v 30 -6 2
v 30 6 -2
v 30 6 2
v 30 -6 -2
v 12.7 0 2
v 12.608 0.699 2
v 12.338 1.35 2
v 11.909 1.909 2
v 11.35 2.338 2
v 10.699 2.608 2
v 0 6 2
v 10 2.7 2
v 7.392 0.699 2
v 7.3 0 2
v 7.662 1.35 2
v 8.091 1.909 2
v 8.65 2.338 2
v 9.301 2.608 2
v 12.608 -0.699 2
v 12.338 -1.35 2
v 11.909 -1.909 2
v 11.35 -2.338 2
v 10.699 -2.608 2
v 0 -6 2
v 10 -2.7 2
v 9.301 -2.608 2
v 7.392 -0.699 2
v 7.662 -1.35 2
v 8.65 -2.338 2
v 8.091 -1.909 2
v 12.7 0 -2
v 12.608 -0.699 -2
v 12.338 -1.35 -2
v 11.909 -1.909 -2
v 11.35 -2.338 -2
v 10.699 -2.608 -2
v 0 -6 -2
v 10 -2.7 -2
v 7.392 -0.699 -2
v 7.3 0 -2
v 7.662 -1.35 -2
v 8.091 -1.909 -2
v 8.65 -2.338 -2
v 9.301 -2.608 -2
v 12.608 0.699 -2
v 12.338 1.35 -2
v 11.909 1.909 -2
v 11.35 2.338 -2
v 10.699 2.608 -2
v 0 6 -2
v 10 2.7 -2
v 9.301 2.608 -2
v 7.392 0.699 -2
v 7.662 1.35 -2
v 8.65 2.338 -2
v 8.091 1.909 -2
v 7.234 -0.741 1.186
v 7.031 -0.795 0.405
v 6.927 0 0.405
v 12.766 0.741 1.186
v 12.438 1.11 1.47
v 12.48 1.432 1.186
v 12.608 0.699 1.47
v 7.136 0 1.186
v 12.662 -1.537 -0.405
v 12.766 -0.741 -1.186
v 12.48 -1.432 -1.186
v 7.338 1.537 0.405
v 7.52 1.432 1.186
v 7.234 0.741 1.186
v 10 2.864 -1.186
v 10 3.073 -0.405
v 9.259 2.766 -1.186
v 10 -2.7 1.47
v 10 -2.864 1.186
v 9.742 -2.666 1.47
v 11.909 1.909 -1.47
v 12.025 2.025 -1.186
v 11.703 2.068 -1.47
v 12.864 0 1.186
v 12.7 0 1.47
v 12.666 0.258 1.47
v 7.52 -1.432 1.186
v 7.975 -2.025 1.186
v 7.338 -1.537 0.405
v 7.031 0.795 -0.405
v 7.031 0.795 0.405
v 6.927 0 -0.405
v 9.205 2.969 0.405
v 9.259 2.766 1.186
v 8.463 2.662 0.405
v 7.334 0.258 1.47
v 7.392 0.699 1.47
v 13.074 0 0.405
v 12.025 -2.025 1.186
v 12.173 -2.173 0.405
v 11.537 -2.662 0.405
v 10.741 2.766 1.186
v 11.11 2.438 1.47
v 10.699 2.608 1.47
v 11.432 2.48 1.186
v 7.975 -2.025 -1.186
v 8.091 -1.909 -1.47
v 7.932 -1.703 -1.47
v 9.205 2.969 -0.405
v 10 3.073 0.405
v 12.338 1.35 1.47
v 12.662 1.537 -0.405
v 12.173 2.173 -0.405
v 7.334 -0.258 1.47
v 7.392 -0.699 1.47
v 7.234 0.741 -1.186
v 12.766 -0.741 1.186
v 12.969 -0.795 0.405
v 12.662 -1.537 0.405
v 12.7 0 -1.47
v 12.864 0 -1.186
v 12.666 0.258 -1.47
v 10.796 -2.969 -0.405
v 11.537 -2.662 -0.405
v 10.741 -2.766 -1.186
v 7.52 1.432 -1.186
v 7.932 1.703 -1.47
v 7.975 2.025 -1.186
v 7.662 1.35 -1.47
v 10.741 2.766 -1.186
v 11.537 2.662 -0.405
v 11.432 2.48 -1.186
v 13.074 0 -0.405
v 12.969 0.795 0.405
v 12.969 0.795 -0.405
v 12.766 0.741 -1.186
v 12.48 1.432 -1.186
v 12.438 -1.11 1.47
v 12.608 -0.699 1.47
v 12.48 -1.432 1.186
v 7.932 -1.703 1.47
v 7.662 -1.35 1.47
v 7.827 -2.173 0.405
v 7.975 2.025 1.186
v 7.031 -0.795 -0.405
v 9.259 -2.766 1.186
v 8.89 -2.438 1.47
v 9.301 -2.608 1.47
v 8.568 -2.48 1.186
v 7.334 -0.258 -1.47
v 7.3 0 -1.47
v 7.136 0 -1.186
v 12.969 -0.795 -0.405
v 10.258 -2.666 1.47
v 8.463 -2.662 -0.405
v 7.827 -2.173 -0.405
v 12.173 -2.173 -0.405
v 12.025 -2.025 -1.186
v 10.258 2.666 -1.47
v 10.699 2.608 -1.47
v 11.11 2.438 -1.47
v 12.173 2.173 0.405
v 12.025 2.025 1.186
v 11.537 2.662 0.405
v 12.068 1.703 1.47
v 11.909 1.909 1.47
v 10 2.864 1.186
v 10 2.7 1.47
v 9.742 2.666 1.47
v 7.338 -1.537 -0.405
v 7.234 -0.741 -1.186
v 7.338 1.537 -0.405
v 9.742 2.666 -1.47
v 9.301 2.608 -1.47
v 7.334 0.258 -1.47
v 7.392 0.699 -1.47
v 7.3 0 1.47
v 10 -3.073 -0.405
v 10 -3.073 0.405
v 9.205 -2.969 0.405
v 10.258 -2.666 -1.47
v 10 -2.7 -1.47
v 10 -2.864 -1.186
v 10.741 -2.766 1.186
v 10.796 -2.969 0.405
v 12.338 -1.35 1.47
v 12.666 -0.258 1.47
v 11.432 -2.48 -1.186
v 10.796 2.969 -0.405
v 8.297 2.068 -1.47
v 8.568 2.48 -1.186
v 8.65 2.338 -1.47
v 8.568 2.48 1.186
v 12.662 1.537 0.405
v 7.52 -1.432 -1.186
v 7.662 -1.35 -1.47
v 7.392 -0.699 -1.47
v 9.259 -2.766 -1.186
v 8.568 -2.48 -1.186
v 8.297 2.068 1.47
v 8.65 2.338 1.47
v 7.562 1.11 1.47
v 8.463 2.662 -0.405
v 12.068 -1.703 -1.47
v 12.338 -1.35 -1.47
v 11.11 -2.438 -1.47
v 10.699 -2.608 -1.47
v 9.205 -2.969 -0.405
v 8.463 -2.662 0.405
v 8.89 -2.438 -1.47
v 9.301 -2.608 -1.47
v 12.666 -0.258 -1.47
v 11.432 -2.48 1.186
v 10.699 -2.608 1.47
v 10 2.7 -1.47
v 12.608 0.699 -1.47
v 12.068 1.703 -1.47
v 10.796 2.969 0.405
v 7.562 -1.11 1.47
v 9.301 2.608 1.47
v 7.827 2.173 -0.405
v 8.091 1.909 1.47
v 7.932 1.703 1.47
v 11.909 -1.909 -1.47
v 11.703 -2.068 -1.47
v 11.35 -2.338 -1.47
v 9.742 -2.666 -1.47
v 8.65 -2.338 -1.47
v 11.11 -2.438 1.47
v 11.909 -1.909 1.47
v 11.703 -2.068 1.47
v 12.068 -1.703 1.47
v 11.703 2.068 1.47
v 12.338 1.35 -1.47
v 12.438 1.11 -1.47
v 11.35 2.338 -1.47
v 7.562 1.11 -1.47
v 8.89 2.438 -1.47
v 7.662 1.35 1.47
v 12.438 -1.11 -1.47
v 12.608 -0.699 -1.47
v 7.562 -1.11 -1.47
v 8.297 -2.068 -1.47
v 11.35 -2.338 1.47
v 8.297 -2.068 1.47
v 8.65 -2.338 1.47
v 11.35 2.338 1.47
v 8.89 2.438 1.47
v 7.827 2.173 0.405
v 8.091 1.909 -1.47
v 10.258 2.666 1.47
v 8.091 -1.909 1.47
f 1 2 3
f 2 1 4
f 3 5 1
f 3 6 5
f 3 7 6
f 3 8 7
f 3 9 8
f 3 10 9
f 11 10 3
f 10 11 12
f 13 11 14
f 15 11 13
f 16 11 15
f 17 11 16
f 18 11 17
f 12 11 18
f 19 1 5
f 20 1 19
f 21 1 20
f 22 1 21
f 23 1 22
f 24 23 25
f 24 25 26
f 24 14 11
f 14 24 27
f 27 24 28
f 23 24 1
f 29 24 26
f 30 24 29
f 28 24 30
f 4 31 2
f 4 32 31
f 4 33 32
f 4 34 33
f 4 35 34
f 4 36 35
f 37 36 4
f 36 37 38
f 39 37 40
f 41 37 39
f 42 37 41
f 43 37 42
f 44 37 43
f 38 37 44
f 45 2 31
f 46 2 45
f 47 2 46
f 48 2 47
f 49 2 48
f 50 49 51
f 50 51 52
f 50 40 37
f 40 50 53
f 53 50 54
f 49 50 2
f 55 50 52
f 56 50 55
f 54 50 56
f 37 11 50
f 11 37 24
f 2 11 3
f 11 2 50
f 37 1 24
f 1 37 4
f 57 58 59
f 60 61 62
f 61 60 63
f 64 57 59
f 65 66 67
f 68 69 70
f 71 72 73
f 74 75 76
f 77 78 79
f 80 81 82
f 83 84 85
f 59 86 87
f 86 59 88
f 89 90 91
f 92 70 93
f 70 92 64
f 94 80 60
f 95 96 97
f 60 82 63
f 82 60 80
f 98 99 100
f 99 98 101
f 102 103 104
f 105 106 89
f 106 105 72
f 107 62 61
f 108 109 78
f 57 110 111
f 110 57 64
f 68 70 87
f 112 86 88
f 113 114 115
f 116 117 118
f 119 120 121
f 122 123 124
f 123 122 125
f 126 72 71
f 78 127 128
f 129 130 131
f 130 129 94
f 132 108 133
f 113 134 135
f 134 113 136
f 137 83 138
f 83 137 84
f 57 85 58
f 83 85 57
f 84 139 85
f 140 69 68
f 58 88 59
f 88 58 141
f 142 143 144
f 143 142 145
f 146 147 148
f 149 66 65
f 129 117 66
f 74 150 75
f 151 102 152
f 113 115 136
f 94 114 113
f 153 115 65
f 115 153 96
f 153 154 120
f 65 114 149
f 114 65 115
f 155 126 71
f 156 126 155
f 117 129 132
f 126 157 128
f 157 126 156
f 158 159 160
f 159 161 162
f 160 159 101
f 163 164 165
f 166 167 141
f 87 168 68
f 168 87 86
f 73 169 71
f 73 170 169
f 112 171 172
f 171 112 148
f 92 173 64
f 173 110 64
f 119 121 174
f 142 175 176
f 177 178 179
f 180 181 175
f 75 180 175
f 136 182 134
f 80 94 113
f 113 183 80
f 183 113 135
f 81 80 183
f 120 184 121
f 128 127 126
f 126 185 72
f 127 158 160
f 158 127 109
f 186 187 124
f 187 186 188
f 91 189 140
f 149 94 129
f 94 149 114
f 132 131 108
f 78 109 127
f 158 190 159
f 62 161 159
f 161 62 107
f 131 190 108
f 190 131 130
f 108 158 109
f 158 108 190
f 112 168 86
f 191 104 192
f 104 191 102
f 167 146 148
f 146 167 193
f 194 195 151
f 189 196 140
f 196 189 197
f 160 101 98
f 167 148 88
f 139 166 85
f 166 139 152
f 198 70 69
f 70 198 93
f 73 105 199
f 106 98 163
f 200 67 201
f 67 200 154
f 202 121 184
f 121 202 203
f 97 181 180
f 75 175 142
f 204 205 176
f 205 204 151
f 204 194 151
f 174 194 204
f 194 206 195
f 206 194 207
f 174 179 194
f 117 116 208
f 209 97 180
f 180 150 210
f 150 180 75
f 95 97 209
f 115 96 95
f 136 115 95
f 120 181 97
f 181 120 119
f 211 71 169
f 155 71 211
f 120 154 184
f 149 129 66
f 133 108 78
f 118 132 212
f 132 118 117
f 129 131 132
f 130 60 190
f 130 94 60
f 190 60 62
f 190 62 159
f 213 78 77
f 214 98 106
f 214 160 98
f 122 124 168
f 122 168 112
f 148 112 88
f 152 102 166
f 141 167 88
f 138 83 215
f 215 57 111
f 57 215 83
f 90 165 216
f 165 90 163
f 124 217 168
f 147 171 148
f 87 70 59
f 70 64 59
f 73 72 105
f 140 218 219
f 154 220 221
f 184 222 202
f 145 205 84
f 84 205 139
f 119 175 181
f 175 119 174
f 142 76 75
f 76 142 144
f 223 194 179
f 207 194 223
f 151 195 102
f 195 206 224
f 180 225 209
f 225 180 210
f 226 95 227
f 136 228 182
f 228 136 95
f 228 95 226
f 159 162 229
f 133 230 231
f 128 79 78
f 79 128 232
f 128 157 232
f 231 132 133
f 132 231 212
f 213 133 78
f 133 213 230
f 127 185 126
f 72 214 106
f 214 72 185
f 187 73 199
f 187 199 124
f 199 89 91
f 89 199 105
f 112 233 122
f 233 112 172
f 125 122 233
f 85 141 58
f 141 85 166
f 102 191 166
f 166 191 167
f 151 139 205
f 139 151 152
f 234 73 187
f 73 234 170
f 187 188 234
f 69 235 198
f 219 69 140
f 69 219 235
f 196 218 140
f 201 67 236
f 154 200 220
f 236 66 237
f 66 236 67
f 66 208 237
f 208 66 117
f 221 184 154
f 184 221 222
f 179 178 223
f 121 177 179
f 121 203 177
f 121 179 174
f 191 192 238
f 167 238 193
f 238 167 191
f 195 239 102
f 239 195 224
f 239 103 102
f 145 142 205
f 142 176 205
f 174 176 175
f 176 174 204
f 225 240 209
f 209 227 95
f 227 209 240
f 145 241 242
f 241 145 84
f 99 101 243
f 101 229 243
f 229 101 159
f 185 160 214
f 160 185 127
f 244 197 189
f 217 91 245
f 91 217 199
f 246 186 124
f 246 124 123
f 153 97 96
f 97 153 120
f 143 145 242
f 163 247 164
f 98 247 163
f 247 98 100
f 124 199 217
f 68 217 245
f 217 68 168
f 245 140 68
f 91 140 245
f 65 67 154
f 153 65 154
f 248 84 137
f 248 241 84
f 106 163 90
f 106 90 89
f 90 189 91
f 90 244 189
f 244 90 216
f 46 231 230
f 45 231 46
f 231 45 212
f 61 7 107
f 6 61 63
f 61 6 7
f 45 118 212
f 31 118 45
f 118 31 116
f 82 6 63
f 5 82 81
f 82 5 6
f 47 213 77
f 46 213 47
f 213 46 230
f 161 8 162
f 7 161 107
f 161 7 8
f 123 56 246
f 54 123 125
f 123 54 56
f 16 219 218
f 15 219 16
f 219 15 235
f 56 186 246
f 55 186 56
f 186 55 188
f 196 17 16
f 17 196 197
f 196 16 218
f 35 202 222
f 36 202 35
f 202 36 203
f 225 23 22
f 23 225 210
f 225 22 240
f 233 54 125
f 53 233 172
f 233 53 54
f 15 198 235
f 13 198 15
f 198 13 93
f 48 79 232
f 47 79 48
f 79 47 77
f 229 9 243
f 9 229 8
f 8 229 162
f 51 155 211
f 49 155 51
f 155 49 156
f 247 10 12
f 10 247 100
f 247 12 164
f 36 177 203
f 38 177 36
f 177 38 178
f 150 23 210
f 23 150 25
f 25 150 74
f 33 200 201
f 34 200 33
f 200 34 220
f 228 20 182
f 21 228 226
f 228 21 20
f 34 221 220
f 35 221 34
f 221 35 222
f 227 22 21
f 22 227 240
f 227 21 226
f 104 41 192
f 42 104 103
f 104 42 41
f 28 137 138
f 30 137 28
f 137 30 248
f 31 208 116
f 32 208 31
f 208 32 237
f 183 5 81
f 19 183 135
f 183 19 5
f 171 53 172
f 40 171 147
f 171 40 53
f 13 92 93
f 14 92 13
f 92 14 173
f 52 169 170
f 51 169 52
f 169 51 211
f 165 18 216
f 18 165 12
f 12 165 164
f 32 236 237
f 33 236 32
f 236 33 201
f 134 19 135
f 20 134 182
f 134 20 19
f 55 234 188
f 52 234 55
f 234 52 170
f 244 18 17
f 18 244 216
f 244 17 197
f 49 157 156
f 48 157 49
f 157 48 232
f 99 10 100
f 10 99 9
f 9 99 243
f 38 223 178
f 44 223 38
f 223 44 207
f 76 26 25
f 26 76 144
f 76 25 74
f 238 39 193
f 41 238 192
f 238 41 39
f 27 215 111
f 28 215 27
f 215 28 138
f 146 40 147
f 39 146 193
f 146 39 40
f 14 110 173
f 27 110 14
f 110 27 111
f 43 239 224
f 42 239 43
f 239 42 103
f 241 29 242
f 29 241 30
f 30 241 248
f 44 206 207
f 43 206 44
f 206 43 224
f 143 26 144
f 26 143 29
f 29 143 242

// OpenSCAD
$fn=24;

difference() {
translate([15,0,0])
cube([30,12,4], center=true);

// socket 1 with 6mm 
translate([10,0,0])
    sphere(d=6.2);

translate([10,0,0])
cylinder(h=10, d=5.4, center=true);
    
}
